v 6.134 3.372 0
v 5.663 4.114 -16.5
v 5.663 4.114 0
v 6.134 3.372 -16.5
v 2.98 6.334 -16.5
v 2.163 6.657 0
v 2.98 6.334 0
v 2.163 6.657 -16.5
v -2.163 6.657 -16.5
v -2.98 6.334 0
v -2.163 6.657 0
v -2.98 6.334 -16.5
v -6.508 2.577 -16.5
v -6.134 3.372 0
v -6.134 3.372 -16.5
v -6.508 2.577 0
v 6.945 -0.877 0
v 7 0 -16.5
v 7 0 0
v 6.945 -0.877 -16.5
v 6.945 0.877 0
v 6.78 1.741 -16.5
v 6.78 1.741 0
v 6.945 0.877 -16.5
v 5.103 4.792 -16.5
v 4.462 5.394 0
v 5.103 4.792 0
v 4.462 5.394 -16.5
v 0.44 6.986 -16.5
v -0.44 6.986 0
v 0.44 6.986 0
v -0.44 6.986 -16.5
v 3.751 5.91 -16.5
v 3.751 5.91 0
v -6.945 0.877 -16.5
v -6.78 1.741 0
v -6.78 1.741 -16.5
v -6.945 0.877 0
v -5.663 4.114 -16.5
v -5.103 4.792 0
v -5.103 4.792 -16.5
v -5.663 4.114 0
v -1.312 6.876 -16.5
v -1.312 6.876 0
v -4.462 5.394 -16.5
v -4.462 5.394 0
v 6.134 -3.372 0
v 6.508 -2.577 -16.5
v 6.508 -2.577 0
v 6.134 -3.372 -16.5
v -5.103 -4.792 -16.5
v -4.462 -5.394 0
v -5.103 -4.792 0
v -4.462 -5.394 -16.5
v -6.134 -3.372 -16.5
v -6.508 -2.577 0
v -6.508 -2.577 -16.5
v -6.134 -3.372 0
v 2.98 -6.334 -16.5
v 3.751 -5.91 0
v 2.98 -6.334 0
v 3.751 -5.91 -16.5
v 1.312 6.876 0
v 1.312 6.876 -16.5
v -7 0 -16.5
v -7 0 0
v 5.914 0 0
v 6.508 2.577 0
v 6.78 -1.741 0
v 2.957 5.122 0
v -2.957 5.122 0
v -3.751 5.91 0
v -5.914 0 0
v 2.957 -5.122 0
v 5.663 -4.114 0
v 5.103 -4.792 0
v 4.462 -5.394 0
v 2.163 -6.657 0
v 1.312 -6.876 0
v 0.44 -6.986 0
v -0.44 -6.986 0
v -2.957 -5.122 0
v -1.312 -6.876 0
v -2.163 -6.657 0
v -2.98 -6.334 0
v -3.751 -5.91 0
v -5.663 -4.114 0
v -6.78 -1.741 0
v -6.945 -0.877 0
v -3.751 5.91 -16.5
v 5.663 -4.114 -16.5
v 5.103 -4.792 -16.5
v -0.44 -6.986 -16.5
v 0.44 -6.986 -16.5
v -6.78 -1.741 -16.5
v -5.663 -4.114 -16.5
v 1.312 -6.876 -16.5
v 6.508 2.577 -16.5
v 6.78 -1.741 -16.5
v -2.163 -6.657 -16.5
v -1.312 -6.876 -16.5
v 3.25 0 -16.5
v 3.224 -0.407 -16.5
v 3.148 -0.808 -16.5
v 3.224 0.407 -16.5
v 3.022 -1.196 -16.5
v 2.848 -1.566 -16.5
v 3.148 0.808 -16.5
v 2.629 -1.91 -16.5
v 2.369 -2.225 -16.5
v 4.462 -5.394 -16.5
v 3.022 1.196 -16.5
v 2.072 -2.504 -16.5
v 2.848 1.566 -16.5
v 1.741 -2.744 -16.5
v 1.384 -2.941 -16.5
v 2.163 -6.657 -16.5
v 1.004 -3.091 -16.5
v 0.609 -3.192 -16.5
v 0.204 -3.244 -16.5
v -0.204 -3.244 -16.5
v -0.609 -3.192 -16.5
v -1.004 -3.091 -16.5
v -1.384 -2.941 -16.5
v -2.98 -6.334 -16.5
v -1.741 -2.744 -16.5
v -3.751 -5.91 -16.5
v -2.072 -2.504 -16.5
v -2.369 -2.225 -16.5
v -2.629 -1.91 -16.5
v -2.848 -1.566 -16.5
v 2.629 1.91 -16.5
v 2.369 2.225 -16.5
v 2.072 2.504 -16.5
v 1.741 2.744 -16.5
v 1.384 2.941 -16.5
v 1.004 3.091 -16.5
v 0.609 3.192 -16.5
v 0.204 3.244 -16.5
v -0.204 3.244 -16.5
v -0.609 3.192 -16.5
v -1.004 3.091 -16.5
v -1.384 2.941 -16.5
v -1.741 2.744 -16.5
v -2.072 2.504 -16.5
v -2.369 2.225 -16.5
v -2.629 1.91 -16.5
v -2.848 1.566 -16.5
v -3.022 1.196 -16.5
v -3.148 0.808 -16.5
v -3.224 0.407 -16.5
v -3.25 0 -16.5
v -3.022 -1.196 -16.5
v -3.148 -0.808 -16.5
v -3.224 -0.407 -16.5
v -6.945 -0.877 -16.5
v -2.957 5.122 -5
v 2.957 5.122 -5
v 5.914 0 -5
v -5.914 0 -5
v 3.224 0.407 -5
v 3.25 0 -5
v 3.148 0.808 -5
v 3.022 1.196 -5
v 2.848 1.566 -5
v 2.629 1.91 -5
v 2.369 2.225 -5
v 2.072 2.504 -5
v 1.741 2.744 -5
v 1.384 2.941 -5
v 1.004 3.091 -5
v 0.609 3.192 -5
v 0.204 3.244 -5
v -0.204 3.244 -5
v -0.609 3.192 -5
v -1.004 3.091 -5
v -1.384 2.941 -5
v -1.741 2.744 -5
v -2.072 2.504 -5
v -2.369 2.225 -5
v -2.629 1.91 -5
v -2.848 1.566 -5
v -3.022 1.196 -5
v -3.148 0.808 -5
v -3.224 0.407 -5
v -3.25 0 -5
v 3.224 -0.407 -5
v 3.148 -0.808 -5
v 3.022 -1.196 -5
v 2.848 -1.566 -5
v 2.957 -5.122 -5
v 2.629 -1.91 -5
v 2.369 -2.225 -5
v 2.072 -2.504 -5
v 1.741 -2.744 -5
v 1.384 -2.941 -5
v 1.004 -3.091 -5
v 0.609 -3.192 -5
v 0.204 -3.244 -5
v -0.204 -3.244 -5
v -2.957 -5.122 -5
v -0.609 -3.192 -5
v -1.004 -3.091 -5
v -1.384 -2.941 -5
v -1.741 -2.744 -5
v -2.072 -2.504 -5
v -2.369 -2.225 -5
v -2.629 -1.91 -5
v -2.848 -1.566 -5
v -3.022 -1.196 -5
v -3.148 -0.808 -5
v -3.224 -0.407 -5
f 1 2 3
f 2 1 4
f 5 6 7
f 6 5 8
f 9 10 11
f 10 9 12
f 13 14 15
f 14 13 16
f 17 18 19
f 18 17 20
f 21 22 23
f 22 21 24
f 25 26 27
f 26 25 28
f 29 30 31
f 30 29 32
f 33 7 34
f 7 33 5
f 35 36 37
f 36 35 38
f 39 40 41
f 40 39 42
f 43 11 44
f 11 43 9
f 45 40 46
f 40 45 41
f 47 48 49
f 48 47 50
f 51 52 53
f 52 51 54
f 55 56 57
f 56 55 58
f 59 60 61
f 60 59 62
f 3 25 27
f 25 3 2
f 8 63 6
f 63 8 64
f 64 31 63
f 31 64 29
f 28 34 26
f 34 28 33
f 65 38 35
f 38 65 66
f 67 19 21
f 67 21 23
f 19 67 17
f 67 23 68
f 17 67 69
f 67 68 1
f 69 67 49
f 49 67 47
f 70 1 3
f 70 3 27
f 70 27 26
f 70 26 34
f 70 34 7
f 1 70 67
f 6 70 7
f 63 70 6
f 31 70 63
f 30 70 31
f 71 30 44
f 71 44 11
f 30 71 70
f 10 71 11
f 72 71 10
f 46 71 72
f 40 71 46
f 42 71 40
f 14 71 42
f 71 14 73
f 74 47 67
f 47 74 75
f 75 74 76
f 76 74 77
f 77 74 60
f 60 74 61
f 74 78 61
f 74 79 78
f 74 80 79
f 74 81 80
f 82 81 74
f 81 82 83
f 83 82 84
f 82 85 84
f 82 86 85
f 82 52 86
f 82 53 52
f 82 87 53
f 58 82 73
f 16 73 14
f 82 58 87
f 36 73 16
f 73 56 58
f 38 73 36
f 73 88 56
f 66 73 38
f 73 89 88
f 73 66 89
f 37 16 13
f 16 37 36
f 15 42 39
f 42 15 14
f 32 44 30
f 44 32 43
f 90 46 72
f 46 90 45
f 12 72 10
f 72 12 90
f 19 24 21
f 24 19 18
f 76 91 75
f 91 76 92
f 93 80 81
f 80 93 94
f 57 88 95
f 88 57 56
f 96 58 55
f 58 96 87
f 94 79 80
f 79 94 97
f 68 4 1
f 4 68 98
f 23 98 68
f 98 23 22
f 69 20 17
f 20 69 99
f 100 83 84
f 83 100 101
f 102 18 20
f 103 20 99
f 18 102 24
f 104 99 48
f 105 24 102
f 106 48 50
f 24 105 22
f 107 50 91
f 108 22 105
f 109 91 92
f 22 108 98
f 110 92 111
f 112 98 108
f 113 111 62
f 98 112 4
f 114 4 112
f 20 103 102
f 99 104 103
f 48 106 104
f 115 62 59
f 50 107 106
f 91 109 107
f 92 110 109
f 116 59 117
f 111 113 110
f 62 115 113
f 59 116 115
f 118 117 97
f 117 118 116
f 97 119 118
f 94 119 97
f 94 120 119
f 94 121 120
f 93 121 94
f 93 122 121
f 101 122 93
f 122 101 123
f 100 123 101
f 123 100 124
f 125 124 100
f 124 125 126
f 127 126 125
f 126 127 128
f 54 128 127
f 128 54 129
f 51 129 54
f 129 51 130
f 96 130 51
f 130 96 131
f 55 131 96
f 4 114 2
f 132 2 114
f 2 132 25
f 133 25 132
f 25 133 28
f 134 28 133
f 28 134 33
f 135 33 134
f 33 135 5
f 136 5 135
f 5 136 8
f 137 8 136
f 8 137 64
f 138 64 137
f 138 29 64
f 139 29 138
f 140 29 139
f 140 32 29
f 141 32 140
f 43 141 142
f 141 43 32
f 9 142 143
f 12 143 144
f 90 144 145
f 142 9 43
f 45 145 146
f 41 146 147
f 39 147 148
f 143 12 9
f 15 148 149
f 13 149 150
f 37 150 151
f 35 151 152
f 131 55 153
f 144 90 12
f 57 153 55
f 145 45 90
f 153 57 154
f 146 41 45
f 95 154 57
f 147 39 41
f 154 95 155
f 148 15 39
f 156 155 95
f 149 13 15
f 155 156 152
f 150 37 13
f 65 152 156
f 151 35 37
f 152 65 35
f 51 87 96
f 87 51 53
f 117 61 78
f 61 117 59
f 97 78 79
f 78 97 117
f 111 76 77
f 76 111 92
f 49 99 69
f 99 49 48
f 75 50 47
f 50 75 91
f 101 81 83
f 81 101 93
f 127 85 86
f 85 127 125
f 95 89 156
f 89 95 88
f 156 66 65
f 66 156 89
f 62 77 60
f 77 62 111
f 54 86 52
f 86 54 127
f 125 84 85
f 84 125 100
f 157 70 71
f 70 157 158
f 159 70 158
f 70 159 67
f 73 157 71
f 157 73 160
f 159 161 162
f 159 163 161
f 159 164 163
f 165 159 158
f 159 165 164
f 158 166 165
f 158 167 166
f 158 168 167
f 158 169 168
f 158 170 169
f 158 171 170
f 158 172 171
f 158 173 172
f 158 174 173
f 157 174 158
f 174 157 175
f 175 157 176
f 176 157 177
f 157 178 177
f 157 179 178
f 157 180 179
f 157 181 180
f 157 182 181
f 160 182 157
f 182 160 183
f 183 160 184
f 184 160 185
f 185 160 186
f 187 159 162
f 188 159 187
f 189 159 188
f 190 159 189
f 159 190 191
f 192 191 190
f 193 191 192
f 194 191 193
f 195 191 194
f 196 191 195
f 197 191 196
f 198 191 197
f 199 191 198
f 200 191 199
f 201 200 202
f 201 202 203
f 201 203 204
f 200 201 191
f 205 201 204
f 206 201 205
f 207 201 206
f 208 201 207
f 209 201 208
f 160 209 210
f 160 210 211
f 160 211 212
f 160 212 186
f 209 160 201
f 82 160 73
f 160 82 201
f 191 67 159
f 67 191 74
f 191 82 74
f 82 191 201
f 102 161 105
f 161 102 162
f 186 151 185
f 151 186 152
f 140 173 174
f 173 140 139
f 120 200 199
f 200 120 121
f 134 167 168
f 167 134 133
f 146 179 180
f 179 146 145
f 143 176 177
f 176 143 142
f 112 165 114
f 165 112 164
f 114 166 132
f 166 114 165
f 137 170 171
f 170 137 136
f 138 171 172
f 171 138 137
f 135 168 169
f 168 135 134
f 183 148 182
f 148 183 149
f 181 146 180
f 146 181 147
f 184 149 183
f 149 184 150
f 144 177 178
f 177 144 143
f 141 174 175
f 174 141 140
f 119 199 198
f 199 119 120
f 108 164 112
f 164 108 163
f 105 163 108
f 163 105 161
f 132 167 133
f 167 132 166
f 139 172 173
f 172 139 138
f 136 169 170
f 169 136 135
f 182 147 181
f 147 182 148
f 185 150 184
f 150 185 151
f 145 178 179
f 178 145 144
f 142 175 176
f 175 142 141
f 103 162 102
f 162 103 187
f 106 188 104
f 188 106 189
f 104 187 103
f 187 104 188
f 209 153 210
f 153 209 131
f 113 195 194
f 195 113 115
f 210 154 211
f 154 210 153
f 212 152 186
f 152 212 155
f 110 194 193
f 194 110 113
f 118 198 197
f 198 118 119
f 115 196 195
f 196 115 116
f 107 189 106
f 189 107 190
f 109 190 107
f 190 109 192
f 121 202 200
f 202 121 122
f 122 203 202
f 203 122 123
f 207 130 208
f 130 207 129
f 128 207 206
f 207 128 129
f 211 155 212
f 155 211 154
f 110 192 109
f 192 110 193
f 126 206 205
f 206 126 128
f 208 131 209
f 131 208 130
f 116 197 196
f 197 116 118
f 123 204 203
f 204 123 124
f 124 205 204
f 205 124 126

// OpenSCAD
$fn = 50;


difference() {
	union() {
		translate(v = [0, 0, -16.5000000000]) {
			cylinder(h = 16.5000000000, r = 7.0000000000);
		}
		#translate(v = [0, 0, -18.0000000000]) {
			cylinder(h = 18, r = 2.8750000000);
		}
	}
	union() {
		translate(v = [0, 0, 0]) {
			rotate(a = [0, 0, 0]) {
				difference() {
					union() {
						translate(v = [0, 0, -5]) {
							linear_extrude(height = 5) {
								polygon(points = [[5.9142500000, 0.0000000000], [2.9571250000, 5.1218907443], [-2.9571250000, 5.1218907443], [-5.9142500000, 0.0000000000], [-2.9571250000, -5.1218907443], [2.9571250000, -5.1218907443]]);
							}
						}
					}
					union();
				}
			}
		}
		#translate(v = [0, 0, -100.0000000000]) {
			cylinder(h = 200, r = 3.2500000000);
		}
	}
}
